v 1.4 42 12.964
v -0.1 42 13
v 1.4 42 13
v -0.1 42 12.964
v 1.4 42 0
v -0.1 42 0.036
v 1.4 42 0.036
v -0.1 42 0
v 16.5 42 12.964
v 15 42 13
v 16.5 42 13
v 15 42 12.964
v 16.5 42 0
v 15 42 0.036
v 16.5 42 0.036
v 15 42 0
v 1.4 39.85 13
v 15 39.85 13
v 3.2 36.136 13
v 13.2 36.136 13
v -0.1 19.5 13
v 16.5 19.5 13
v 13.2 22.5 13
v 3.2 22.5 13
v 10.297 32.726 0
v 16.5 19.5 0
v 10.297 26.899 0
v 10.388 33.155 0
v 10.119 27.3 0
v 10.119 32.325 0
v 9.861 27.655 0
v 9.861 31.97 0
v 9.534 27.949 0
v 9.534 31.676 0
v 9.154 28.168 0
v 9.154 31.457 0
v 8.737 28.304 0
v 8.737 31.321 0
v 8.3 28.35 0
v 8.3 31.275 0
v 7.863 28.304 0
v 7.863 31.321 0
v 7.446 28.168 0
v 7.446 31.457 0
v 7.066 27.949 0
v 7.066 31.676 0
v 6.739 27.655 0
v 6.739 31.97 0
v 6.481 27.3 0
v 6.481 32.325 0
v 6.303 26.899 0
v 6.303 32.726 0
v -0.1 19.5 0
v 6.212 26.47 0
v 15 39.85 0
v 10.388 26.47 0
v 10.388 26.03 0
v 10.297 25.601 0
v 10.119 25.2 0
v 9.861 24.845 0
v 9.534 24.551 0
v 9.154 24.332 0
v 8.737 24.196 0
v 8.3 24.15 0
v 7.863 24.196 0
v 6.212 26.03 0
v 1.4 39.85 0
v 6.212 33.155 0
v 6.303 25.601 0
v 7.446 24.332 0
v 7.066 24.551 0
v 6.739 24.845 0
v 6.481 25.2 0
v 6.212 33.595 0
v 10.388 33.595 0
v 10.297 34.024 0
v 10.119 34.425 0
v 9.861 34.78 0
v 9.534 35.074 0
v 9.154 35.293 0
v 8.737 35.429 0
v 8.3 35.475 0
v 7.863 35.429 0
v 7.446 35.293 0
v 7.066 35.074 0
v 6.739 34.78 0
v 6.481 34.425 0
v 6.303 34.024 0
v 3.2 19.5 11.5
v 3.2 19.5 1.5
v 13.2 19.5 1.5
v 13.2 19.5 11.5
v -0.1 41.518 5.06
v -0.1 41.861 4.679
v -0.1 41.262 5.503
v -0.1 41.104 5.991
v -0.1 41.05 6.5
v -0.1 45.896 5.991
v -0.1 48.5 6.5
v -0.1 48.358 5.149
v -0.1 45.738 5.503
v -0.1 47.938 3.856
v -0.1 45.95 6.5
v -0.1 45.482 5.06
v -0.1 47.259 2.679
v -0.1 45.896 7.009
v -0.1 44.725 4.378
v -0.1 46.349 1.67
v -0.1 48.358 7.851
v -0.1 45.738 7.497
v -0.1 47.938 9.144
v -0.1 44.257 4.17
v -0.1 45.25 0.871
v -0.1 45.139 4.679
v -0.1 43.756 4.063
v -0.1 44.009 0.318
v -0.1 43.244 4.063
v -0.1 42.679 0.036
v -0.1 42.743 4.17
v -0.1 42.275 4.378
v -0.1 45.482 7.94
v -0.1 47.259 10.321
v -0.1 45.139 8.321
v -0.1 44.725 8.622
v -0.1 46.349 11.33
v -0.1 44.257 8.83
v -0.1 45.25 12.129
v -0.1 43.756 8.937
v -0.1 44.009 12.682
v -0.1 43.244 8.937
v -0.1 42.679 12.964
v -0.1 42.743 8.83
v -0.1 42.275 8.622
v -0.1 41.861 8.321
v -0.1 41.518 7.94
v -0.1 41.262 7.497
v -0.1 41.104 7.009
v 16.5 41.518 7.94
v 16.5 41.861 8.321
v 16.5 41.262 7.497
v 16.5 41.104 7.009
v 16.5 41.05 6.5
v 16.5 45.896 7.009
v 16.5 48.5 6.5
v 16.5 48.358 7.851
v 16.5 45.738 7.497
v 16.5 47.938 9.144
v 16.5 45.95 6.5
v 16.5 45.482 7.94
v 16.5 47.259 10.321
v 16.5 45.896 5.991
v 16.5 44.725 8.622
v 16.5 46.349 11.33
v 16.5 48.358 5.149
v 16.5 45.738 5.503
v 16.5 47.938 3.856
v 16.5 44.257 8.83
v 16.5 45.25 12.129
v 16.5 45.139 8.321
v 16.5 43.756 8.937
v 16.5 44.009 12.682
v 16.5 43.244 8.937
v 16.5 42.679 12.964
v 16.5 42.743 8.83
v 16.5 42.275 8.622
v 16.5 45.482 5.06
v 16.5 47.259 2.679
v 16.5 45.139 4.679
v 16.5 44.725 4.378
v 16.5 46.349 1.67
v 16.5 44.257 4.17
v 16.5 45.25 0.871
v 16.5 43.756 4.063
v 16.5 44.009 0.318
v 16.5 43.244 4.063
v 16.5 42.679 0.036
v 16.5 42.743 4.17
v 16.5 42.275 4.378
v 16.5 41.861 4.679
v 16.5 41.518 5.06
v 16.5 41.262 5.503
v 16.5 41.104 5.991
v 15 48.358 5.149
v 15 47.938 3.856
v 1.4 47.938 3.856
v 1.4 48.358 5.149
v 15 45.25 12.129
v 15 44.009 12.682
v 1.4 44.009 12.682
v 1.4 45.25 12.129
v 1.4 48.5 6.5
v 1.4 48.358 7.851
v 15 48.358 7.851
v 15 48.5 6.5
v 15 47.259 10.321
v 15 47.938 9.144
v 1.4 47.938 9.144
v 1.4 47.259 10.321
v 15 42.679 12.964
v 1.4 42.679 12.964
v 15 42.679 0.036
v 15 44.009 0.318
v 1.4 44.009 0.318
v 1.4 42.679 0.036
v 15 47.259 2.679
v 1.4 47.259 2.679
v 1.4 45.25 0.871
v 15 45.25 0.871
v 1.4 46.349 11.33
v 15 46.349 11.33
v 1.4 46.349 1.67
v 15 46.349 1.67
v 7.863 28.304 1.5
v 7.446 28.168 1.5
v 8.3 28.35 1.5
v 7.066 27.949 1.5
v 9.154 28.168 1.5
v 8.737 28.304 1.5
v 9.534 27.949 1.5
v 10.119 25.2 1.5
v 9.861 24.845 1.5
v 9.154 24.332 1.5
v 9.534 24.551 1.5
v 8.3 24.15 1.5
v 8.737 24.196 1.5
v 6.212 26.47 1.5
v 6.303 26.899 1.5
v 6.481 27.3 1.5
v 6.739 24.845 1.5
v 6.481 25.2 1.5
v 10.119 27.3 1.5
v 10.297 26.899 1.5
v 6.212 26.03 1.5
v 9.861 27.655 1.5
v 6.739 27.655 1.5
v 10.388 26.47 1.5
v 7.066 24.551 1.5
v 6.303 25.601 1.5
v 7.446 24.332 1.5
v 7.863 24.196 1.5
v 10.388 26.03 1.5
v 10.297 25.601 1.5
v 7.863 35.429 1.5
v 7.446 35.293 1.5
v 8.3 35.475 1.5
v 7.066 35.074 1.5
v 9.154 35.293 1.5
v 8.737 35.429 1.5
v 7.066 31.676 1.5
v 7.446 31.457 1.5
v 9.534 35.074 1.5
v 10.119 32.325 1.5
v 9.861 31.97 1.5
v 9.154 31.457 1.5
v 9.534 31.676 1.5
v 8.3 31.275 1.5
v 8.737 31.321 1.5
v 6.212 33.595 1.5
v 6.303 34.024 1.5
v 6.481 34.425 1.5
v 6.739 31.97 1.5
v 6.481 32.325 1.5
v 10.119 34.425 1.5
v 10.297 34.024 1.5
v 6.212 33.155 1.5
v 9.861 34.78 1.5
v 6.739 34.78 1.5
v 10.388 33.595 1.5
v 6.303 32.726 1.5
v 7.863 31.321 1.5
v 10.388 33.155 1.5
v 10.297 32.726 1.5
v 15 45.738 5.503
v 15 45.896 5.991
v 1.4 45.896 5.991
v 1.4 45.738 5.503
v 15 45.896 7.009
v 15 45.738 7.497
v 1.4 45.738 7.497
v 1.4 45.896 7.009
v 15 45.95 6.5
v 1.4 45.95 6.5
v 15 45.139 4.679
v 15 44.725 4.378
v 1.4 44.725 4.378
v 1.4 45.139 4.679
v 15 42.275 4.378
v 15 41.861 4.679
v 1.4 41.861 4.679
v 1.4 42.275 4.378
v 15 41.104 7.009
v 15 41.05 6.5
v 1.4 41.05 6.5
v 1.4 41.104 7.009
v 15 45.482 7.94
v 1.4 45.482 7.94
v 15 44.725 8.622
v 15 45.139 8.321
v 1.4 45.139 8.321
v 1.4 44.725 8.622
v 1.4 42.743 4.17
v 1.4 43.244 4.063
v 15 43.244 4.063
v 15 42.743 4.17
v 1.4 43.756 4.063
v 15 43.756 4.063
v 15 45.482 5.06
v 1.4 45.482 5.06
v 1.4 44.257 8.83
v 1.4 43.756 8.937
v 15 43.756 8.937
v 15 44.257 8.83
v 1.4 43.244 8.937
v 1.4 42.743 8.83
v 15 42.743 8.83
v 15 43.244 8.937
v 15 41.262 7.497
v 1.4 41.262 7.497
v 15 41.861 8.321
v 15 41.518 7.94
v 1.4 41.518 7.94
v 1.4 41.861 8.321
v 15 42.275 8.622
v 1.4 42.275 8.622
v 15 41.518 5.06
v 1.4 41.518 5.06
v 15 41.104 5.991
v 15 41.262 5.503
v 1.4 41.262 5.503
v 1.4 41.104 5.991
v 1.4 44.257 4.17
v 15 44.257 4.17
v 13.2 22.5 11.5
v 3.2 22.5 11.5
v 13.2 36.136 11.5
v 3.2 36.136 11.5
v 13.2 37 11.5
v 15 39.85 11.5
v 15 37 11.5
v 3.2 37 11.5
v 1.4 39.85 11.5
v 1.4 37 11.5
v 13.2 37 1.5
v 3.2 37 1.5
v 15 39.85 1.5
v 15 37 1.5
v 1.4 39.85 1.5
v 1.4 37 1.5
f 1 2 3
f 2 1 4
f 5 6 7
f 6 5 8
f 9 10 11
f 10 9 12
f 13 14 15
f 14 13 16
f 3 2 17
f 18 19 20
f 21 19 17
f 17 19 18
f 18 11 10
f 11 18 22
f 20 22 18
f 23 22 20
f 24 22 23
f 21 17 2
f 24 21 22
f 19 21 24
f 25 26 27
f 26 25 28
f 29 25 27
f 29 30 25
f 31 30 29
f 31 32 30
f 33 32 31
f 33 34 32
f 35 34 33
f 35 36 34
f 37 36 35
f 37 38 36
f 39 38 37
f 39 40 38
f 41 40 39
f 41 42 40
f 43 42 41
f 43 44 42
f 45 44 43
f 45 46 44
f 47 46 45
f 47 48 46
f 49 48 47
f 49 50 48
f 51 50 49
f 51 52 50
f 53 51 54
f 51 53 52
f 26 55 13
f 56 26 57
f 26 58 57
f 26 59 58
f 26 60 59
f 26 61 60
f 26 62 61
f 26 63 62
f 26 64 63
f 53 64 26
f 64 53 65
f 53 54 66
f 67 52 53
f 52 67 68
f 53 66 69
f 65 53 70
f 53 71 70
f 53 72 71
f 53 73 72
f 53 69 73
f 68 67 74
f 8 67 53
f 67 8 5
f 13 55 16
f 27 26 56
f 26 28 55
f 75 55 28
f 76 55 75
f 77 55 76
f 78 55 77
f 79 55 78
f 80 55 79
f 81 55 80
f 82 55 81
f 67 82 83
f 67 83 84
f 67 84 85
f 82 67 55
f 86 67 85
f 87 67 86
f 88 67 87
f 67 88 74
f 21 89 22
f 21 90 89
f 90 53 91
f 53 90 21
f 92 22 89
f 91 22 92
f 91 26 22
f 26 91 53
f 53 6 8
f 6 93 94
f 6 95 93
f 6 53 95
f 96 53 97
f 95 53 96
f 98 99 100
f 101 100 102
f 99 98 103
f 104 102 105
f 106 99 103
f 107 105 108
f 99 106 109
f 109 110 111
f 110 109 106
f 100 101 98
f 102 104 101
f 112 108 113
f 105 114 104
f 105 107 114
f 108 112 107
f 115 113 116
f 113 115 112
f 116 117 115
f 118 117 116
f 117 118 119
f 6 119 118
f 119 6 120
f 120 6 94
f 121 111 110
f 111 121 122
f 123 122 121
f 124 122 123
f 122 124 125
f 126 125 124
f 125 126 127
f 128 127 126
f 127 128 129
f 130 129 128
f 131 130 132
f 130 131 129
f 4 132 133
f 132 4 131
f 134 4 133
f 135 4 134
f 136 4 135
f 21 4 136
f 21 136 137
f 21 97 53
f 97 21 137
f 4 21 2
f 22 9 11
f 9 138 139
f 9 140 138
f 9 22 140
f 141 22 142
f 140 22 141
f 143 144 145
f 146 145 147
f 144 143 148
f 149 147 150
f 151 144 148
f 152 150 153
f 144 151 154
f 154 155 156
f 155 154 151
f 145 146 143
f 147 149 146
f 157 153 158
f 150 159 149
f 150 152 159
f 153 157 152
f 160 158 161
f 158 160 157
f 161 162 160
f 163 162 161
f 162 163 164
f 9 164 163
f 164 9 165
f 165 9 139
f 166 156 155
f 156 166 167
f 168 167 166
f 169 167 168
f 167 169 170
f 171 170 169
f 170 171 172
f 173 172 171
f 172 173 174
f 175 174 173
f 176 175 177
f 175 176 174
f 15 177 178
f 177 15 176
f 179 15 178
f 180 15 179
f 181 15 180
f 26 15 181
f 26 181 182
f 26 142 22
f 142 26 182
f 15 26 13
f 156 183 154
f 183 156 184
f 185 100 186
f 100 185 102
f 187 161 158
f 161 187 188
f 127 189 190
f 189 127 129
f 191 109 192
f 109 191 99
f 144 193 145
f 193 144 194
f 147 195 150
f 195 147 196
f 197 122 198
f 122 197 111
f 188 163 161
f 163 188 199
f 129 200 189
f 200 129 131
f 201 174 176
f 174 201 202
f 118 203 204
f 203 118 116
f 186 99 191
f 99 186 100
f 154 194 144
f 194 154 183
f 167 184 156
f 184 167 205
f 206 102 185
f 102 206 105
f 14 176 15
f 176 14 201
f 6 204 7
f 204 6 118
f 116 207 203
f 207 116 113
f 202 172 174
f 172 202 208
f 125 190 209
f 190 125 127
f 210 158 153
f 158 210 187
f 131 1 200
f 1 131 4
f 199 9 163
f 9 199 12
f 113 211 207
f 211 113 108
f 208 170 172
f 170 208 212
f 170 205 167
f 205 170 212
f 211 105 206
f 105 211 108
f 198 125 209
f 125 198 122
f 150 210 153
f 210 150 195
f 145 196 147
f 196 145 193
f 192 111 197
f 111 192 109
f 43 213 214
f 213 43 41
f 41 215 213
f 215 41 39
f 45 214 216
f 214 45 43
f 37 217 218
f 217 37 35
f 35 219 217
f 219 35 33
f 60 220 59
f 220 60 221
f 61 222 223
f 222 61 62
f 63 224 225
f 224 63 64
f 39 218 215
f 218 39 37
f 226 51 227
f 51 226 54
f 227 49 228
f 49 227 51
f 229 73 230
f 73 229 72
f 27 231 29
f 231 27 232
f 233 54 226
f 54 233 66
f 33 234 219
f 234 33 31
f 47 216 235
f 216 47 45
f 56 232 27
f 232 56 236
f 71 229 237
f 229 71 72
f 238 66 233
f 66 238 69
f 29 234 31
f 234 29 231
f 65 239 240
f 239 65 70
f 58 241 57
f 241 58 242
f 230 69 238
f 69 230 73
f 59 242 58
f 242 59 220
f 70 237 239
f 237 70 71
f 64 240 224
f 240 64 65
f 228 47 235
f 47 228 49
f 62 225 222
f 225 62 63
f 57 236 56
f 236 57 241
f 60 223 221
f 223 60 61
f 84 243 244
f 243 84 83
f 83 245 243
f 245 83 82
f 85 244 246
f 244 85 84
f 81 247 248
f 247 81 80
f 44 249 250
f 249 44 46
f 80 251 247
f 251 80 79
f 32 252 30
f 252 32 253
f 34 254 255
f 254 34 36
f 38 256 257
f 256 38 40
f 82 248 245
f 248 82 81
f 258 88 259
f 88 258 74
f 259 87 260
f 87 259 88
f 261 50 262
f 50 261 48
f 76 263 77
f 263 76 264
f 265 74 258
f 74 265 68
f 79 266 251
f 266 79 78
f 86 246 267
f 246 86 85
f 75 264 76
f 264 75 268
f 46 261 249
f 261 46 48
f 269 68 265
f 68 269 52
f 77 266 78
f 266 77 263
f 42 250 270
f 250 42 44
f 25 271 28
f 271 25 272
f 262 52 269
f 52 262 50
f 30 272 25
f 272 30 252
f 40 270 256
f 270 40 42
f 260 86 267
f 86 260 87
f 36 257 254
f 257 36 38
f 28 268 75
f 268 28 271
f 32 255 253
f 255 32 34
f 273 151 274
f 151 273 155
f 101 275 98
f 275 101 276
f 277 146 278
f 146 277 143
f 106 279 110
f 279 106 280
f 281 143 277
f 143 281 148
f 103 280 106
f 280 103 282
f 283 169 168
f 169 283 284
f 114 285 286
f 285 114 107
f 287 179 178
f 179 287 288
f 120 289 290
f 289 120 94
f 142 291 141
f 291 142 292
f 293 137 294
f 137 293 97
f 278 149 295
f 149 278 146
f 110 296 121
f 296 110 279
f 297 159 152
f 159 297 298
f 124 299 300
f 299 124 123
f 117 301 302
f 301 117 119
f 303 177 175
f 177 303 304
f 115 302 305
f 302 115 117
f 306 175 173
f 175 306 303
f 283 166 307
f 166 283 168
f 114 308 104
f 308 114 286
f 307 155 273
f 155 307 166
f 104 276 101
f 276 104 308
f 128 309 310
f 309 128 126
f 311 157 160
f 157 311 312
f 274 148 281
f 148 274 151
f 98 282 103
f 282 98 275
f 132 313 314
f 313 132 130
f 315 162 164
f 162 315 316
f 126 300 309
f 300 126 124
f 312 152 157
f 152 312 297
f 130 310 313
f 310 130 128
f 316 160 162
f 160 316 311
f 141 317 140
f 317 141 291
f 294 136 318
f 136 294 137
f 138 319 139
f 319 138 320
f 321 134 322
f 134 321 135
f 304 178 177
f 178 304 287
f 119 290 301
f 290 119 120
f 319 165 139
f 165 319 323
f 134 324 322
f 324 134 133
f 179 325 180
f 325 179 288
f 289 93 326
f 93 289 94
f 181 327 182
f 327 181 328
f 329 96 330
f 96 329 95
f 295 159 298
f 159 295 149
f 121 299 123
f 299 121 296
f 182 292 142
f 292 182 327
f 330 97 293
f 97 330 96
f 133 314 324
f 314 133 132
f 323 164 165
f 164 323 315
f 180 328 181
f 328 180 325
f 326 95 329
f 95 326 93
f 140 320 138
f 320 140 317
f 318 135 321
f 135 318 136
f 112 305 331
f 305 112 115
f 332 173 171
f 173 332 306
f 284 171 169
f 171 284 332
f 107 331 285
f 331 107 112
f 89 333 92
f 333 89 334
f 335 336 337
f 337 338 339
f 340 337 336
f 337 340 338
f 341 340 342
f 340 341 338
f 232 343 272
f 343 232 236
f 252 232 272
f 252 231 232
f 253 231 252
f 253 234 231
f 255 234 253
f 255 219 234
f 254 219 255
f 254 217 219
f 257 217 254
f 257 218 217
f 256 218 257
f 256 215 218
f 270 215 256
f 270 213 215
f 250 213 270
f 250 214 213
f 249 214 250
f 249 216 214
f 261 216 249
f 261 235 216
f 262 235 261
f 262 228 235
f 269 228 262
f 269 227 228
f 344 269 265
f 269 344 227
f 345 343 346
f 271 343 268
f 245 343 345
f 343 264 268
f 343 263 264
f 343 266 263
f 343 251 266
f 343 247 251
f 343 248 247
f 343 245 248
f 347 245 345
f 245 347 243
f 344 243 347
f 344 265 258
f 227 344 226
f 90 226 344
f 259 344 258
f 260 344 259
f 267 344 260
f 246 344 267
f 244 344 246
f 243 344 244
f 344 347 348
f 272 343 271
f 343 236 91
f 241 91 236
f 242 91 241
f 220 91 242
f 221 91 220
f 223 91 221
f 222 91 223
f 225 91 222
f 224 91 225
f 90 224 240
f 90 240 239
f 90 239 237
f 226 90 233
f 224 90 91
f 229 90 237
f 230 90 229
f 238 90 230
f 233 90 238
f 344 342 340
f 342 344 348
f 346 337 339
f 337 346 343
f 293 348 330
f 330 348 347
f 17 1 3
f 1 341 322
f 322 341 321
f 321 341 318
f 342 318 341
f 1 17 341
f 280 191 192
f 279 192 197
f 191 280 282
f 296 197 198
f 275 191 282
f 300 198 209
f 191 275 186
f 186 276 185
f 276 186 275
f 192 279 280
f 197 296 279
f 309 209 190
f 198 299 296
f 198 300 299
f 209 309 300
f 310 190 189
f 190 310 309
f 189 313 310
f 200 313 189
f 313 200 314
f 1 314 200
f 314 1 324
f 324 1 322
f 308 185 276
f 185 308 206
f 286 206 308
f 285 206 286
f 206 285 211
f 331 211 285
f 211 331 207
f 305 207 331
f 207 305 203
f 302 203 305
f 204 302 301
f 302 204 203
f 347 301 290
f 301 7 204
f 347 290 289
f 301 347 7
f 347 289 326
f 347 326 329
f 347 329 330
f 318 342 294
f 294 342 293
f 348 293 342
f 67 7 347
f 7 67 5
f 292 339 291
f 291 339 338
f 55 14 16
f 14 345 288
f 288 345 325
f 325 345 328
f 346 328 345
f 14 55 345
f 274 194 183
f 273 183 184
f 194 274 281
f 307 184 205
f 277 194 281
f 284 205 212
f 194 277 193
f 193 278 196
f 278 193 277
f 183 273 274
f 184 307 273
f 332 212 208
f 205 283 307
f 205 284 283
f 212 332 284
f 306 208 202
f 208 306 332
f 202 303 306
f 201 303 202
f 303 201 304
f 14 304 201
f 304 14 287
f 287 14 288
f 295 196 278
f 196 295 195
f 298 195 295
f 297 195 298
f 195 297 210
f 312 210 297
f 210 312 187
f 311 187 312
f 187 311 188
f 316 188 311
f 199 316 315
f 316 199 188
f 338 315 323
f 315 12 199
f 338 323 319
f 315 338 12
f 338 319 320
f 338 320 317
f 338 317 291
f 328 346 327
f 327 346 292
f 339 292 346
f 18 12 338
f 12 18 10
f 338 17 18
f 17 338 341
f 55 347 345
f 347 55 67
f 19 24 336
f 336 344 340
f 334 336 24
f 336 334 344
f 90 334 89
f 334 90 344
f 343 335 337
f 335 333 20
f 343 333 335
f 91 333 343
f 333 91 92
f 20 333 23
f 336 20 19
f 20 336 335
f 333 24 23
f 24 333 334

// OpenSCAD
//
// PARAMETRIC Cable Chain v0.5
// Zerginator 10/2015
//



use <text_on.scad>

$fn = 30;

ChainDef = [[1,0]];
//ChainDef = [[1,0],[1,0],[1,0],[1,0],[1,0],[1,0],[1,0],[1,0],[1,0],[1,0],[1,30],[1,30],[1,30],[1,30],[1,30],[1,30],[1,0],[1,0],[1,0],[1,0],[1,0],[1,0],[1,0]];


// ===============================================================================
// Type
Type        =       2;         // 1: +45° Bewegbar, 2: +-45°
Round       =       1;         // Runder oder eckiger Typ

// ===============================================================================
// box parameters
width       =       16.6;       // width of the chainlink (Standard: 16.6)
height      =       13;         // height of the chainlink (Standard: 13)
length      =       30;         // length of the chainlink  (Standard: 25, min 30 für Eckig)


// ===============================================================================
// === OUTPUT


// ===Check Consistency of Values
if((!Type && !Start && !End) || ((Round != 1) && (length/height<2.2)))
{
    // === IDIOT BOX (if imposible values were selected)
    cube([30,30,30]);
    color("red")
    text_on_cube("Doh!!", locn_vec=[15,15,15], cube_size=30, face="top", size=5, center=true); 
    color("red")
    text_on_cube("Error!!", locn_vec=[15,15,15], cube_size=30, face="front", size=5, center=true);   
    color("red")
    text_on_cube("Fehler!!", locn_vec=[15,15,15], cube_size=30, face="right", size=4, center=true);   
    color("red")
    text_on_cube("Défaut!!", locn_vec=[15,15,15], cube_size=30, face="left", size=4, center=true);   
    color("red")
    text_on_cube("ошибка!!", locn_vec=[15,15,15], cube_size=30, face="back", size=4, center=true); 
    color("red")
    text_on_cube("错误!!", locn_vec=[15,15,15], cube_size=30, face="bottom", size=4, center=true);     
}

else
    
// === Put the Chainlinks together to a single Cablechain
{
    if( Round == 1)
    {
        vec = select2(ChainDef,[1]);
        for (i = [1:len(ChainDef)]) { 
            c = sumv(vec,i-1,0);
            a = coslength(i,ChainDef,vec); 
            b = sinlength(i,ChainDef,vec); 

            pcsOChain(width, length, height, 0, a, b, c);
        }
    }

}


// ===============================================================================
// === Mathematikfunktionen
function sumv(v,i,s=0) = (i==s ? v[i] : v[i] + sumv(v,i-1,s));
function select(source_vector,select_vector)=
   [ for (i = [0 : len(select_vector) - 1]) source_vector[select_vector[i]] ];
function select2(source_vector,select_vector)=
   [ for (i = [0 : len(source_vector) - 1]) source_vector[i][1] ];
function coslength(j,ChainDef,vec,s=1)=
   (j==s ? (((height/13)*(length-10.5)) * cos(sumv(vec,j-1,0)-ChainDef[j-1][1])) : (((height/13)*(length-10.5))) * cos(sumv(vec,j-1,0)-ChainDef[j-1][1]) + coslength(j-1,ChainDef,vec));  
   
function sinlength(j,ChainDef,vec,s=1)=
   (j==s ? ((height/13)*(length-10.5))*(sin(sumv(vec,j-1,0)-ChainDef[j-1][1])) : ((height/13)*(length-10.5))*(sin(sumv(vec,j-1,0)-ChainDef[j-1][1])) + sinlength(j-1,ChainDef,vec));


// ===============================================================================
// === Generate Chain module
module pcsOChain(width, length, height, posx,posy,posz, ChainAngle) 
    {    
        translate([posx,posy,posz])
        translate([0,(height/13)*4.5,(height/13)*6.5])  
        rotate(a=ChainAngle, v=[1,0,0])
        translate([0,-(height/13)*4.5,-(height/13)*6.5])  
        if (Round != 1)
        {
            pcsMiddlePart(width, length, height);
            pcsOFront(width, length, height);
            translate([0,length - height - overlapping,0]) pcsOBack(width, length, height);
        }
        else
        {
            CableChain(width, length, height);
        }
    }





// ===============================================================================
// ===============================================================================
// ===============================================================================




// ===============================================================================
// === Cable Chain (Rund)

module CableChain(width, length, height)
{
translate([width,0,0])
rotate(a=90, v=[0,0,1])
difference()
    {
    union()
        {
        difference()
            {
                union()
                   {
                    translate([0,0.1,0])
                        rotate(a=0, v=[0,0,1])
                            cube([(height/13)*(length-7.5),width,(height/13)*13]);
                    translate([(height/13)*(length-7.5),0.1,(height/13)*6.5])
                        rotate(a=90, v=[-1,0,0])
                            cylinder(r=(height/13)*6.5, h=width);
                   }
                   
                translate([length / 8 * 1.8, width / 2, 0]) cylinder(d=4.2,h=height);
                //translate([length / 8 * 2, width / 2, 0]) cylinder(d=2.5,h=height);
                translate([length / 8 * 3.7, width / 2, 0]) cylinder(d=4.2,h=height);
                /*
                hull()
                {
                    translate([length / 8, width / 2, 0]) cylinder(d=2.5,h=height);
                    translate([length / 8 * 3, width / 2, 0]) cylinder(d=2.5,h=height);
                }
                */

                union()
                    {
                    union()
                        {
                        if (Type == 1)
                        {
                            translate([(height/13)*-0.8,-1,(height/13)*6.4])
                                rotate(a=35, v=[0,-1,0])
                                    cube([(height/13)*9,width+1.5,(height/13)*5]);
                            translate([(height/13)*3.2,-1,(height/13)*9.9])
                                rotate(a=0, v=[0,0,1])
                                    cube([(height/13)*7,width+1.5,(height/13)*4]);
                        }
                        /*translate([(height/13)*4.6,2,(height/13)*6.5])
                            rotate(a=90, v=[1,0,0])   
                                cylinder(r=(height/13)*6.85, h=3);
                        */
                        //FEMALE
                            translate([(height/13)*(length-6),width+0.5,(height/13)*6.5])
                                rotate(a=90, v=[1,0,0])   
                                    cylinder(r=(height/13)*2.45, h=width+0.9);
                         /*translate([(height/13)*4.6,width+1.3,(height/13)*6.5])
                            rotate(a=90, v=[1,0,0])   
                                cylinder(r=(height/13)*6.85, h=3);*/
                        
                        }
                    /*difference()
                        {
                        translate([0,-0.5,0])
                            rotate(a=0, v=[0,0,1])
                                cube([(height/13)*5,width+0.9,(height/13)*4]);
                        {
                        translate([(height/13)*5,width+0.4,(height/13)*5.5])
                            rotate(a=90, v=[1,0,0])   
                                cylinder(r=(height/13)*5.5, h=width+0.9);
                            }
                        }*/
                    if (Type == 2)
                        {
                        /*difference()
                            {
                            translate([0,-0.5,9])
                                rotate(a=0, v=[0,0,1])
                                    cube([(height/13)*5,width+0.9,(height/13)*4]);
                            {
                            translate([(height/13)*5,width+0.4,(height/13)*7.5])
                                rotate(a=90, v=[1,0,0])   
                                    cylinder(r=(height/13)*5.5, h=width+0.9);
                                }
                            }*/
                        }
                    }
                }
                
                // MALE
                /*difference()
                {
                    translate([(height/13)*4.5,width-0.3,(height/13)*6.5])
                        rotate(a=90, v=[1,0,0])   
                            cylinder(r=(height/13)*1.85, h=width-0.8); 
                    translate([(height/13)-1,-2,(height/13)*4.5])
                        rotate(a=-20, v=[0,0,1])
                            cube([4,4,4]);
                    translate([(height/13)-1,18.8,(height/13)*4.5]) //2.5
                            rotate(a=-70, v=[0,0,1]) //-15
                                cube([4,4,4]);
                } */
        } 
        
    union()
        {
            translate([(height/13)*-1,3.4,1.5])
                rotate(a=0, v=[0,0,1])
                    cube([(height/13)*(length+1),width-6.6,height-3]);
            translate([(length / 10),3.4,(height/13)*3.5])
                rotate(a=0, v=[0,0,1])
                    cube([length / 2.2,width-6.6,(height/13)*10]);    
            
            if (Type == 1)
            {
                translate([(height/13)*-1,3.4,(height/13)*-1.5])
                    rotate(a=0, v=[0,0,1])
                        cube([(height/13)*8,width-6.6,(height/13)*13]);
                translate([(height/13)*(length-12.5),1.6,(height/13)*9.7])
                    rotate(a=-60, v=[1,0,0])
                        cube([(height/13)*11,3,3]);  
                translate([(height/13)*(length-12.5),width-1.4,(height/13)*9.7])
                    rotate(a=150, v=[1,0,0])
                        cube([(height/13)*11,3,3]);
                translate([(height/13)*(length-12.5),1.6,1.5])
                    rotate(a=0, v=[0,0,1])
                        cube([(height/13)*6,width-3,((height/13)*8.2)+((height/13)*1.5-1.5)]);
                translate([(height/13)*(length-9.65),1.6,0])
                    rotate(a=0, v=[0,0,1])
                        cube([(height/13)*10,width-3,(height/13)*9.7]);
            }
            
            if (Type == 2)
            {
            /*translate([(height/13)*-1,3.4,(height/13)*-1.5])
                    rotate(a=0, v=[0,0,1])
                        cube([(height/13)*8,width-6.6,(height/13)*16]);*/
            translate([(height/13)*(length-12.5),1.6,1.5])
                    rotate(a=0, v=[0,0,1])
                        cube([(height/13)*6,width-3,height-3]);

            translate([(height/13)*(length-9.65),1.6,0])
                rotate(a=0, v=[0,0,1])
                    cube([(height/13)*10,width-3,(height/13)*13]);
            }
        }
    }    
    
} // END CABLE CHAIN RUND
